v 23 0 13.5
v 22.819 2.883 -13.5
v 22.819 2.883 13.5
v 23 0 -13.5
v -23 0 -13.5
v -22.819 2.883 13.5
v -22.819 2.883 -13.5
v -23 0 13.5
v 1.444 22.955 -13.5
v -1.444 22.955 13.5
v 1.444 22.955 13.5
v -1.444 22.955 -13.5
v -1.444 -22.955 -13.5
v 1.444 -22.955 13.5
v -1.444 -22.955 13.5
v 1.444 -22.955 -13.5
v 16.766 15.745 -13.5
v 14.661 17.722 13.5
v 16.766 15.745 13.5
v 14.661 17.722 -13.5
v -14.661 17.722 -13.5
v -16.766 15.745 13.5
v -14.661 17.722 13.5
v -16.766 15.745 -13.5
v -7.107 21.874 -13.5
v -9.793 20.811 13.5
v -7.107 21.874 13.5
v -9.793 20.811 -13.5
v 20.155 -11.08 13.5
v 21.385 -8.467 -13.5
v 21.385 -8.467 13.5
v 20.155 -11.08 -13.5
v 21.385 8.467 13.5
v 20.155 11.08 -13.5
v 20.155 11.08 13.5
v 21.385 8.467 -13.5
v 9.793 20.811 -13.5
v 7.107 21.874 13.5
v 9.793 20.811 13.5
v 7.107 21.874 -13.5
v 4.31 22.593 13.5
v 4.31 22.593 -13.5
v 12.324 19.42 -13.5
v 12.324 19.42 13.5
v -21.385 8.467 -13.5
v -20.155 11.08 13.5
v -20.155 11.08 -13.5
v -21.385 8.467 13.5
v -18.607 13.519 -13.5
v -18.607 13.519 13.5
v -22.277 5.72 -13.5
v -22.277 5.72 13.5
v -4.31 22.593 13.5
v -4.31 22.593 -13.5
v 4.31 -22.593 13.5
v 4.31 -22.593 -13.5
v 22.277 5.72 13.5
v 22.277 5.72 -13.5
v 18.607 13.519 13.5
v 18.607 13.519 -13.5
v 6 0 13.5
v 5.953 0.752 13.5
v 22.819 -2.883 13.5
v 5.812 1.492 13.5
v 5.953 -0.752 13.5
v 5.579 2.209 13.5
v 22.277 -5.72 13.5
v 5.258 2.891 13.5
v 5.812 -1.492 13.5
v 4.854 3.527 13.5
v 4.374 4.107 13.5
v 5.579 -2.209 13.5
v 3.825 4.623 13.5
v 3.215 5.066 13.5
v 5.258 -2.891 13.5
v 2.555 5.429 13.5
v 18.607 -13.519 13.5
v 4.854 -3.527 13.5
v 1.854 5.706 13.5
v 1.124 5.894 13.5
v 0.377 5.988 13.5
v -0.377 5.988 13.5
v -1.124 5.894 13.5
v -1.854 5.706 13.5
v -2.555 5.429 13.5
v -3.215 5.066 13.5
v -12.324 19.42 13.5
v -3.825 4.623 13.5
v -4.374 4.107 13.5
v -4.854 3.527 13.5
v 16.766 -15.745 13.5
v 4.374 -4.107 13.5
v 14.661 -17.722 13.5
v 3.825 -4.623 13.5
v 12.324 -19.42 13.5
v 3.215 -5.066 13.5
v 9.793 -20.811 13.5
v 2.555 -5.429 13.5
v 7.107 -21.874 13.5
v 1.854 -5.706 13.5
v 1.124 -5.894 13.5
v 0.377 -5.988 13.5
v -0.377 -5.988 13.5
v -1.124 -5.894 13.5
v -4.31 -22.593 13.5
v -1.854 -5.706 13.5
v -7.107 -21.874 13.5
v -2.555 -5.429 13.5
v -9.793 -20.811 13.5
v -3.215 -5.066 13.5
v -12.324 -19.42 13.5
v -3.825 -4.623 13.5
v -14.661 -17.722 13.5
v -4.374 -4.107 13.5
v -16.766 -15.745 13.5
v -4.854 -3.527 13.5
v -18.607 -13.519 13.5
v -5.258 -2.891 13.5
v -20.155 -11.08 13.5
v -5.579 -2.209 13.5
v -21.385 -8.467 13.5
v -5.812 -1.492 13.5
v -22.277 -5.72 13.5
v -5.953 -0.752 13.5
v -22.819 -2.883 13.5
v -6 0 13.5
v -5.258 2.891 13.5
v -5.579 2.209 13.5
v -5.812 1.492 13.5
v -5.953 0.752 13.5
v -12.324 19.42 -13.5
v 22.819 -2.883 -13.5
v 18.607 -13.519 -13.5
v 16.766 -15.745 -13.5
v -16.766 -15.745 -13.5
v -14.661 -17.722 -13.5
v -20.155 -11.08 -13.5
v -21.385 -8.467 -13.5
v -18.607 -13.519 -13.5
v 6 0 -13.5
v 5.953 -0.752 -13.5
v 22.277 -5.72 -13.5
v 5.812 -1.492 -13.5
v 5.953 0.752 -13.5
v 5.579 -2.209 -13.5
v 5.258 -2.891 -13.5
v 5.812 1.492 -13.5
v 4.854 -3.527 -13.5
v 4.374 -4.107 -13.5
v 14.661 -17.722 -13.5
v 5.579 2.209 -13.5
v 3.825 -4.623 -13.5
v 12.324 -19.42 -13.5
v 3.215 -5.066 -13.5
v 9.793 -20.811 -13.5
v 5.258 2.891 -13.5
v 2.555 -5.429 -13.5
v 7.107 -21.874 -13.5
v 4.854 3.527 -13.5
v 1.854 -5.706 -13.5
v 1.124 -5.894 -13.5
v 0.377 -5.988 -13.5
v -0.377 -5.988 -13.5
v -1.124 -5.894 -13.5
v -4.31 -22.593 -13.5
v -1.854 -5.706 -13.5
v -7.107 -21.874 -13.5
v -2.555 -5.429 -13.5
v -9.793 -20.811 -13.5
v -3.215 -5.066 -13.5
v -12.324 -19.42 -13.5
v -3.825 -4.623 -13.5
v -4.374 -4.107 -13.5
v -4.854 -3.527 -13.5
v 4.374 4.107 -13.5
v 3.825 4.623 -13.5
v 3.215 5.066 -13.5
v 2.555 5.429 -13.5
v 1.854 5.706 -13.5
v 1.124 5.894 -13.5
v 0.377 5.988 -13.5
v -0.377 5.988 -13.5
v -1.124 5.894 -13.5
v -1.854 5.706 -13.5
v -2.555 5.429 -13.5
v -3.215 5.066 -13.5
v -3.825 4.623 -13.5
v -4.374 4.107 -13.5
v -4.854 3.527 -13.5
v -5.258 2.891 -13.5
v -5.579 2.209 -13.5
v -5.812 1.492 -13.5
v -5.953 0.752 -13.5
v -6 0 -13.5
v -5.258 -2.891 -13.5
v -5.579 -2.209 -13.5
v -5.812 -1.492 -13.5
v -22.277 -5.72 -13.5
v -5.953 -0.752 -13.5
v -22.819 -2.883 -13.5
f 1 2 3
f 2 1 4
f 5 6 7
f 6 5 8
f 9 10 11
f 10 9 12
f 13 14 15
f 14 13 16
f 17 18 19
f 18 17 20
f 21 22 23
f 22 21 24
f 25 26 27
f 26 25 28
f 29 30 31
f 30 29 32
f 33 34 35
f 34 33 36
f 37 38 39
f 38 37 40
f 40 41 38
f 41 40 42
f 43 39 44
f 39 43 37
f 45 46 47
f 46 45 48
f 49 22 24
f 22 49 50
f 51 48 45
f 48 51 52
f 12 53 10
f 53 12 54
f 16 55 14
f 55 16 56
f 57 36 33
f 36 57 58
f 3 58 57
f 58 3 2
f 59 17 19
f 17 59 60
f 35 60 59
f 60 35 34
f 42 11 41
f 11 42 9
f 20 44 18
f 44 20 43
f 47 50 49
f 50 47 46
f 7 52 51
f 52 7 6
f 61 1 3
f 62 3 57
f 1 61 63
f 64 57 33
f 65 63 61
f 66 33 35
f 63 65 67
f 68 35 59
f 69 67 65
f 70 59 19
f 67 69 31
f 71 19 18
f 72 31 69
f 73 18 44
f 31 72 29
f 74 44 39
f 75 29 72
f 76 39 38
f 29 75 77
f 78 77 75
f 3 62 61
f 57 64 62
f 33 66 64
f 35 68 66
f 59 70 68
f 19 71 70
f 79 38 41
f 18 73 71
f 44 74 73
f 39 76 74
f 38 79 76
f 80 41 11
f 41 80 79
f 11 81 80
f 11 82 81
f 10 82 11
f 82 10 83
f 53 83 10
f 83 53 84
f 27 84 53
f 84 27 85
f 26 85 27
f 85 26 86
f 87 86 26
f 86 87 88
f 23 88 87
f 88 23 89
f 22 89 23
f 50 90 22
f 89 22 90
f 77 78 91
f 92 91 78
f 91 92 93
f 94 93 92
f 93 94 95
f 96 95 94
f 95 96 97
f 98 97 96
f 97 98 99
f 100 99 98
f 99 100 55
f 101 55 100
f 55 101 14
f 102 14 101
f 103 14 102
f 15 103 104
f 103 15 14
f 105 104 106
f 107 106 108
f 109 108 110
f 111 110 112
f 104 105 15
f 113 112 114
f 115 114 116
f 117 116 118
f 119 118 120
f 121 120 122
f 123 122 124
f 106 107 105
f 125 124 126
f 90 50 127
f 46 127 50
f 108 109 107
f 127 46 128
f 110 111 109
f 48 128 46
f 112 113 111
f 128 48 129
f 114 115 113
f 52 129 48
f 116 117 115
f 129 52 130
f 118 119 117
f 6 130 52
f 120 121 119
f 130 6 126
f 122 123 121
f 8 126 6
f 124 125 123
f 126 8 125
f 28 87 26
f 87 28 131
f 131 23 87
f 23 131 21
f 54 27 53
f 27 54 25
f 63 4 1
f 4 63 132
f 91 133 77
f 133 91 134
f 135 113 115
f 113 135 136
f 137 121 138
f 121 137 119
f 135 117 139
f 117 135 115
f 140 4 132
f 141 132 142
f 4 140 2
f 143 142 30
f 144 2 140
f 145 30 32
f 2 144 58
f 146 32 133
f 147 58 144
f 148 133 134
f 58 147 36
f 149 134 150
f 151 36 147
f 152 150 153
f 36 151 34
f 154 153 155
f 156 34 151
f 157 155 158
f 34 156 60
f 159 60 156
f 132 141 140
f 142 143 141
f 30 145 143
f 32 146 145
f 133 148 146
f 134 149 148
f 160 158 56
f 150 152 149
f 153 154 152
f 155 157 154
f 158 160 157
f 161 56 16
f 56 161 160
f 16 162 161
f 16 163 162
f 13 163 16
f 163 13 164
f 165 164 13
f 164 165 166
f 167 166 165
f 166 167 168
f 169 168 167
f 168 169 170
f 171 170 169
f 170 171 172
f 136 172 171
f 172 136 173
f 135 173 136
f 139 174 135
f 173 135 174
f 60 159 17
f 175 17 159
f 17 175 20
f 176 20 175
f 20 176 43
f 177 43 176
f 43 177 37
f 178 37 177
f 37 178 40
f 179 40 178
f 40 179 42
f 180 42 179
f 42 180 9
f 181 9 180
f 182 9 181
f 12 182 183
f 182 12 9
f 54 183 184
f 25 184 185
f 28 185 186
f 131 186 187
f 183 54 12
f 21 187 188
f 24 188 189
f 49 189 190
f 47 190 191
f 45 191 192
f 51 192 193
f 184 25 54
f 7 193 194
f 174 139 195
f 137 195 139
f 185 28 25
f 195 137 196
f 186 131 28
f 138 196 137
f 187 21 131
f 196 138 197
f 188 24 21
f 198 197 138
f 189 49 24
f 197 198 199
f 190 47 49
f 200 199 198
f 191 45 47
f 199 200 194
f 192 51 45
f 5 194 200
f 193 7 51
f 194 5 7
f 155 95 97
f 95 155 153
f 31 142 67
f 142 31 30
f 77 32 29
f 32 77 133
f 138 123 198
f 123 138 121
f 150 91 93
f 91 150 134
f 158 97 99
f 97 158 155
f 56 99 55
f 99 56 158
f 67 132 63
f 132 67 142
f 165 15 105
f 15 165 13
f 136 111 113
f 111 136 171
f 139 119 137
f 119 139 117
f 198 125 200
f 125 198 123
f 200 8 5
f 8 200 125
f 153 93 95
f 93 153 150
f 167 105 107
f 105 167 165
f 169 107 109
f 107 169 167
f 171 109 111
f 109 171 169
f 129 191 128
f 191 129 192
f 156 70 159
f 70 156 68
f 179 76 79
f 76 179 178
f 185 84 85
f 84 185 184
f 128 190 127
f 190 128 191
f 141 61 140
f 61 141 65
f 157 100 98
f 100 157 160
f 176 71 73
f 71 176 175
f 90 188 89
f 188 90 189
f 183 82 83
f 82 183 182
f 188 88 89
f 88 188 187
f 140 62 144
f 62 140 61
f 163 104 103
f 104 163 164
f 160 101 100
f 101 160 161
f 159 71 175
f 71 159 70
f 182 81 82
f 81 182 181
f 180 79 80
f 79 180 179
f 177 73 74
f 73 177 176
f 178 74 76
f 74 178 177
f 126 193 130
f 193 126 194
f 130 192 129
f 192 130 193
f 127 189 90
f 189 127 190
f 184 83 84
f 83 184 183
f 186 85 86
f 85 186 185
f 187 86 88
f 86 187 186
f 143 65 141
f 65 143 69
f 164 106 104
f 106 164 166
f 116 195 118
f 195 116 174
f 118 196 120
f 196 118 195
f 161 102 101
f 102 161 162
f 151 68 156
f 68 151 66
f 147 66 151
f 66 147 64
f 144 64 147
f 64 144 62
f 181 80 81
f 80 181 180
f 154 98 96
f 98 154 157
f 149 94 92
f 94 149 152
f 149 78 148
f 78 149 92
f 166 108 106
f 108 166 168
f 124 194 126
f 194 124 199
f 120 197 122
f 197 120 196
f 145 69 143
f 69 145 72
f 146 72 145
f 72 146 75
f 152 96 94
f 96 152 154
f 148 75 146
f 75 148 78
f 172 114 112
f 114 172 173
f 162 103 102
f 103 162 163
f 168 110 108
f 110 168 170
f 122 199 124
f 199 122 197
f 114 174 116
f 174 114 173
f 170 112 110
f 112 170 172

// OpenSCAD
$fn = 50;


difference() {
	union() {
		translate(v = [0, 0, -13.5000000000]) {
			cylinder(h = 27, r = 23.0000000000);
		}
	}
	union() {
		translate(v = [0, 0, -100.0000000000]) {
			cylinder(h = 200, r = 6);
		}
	}
}
